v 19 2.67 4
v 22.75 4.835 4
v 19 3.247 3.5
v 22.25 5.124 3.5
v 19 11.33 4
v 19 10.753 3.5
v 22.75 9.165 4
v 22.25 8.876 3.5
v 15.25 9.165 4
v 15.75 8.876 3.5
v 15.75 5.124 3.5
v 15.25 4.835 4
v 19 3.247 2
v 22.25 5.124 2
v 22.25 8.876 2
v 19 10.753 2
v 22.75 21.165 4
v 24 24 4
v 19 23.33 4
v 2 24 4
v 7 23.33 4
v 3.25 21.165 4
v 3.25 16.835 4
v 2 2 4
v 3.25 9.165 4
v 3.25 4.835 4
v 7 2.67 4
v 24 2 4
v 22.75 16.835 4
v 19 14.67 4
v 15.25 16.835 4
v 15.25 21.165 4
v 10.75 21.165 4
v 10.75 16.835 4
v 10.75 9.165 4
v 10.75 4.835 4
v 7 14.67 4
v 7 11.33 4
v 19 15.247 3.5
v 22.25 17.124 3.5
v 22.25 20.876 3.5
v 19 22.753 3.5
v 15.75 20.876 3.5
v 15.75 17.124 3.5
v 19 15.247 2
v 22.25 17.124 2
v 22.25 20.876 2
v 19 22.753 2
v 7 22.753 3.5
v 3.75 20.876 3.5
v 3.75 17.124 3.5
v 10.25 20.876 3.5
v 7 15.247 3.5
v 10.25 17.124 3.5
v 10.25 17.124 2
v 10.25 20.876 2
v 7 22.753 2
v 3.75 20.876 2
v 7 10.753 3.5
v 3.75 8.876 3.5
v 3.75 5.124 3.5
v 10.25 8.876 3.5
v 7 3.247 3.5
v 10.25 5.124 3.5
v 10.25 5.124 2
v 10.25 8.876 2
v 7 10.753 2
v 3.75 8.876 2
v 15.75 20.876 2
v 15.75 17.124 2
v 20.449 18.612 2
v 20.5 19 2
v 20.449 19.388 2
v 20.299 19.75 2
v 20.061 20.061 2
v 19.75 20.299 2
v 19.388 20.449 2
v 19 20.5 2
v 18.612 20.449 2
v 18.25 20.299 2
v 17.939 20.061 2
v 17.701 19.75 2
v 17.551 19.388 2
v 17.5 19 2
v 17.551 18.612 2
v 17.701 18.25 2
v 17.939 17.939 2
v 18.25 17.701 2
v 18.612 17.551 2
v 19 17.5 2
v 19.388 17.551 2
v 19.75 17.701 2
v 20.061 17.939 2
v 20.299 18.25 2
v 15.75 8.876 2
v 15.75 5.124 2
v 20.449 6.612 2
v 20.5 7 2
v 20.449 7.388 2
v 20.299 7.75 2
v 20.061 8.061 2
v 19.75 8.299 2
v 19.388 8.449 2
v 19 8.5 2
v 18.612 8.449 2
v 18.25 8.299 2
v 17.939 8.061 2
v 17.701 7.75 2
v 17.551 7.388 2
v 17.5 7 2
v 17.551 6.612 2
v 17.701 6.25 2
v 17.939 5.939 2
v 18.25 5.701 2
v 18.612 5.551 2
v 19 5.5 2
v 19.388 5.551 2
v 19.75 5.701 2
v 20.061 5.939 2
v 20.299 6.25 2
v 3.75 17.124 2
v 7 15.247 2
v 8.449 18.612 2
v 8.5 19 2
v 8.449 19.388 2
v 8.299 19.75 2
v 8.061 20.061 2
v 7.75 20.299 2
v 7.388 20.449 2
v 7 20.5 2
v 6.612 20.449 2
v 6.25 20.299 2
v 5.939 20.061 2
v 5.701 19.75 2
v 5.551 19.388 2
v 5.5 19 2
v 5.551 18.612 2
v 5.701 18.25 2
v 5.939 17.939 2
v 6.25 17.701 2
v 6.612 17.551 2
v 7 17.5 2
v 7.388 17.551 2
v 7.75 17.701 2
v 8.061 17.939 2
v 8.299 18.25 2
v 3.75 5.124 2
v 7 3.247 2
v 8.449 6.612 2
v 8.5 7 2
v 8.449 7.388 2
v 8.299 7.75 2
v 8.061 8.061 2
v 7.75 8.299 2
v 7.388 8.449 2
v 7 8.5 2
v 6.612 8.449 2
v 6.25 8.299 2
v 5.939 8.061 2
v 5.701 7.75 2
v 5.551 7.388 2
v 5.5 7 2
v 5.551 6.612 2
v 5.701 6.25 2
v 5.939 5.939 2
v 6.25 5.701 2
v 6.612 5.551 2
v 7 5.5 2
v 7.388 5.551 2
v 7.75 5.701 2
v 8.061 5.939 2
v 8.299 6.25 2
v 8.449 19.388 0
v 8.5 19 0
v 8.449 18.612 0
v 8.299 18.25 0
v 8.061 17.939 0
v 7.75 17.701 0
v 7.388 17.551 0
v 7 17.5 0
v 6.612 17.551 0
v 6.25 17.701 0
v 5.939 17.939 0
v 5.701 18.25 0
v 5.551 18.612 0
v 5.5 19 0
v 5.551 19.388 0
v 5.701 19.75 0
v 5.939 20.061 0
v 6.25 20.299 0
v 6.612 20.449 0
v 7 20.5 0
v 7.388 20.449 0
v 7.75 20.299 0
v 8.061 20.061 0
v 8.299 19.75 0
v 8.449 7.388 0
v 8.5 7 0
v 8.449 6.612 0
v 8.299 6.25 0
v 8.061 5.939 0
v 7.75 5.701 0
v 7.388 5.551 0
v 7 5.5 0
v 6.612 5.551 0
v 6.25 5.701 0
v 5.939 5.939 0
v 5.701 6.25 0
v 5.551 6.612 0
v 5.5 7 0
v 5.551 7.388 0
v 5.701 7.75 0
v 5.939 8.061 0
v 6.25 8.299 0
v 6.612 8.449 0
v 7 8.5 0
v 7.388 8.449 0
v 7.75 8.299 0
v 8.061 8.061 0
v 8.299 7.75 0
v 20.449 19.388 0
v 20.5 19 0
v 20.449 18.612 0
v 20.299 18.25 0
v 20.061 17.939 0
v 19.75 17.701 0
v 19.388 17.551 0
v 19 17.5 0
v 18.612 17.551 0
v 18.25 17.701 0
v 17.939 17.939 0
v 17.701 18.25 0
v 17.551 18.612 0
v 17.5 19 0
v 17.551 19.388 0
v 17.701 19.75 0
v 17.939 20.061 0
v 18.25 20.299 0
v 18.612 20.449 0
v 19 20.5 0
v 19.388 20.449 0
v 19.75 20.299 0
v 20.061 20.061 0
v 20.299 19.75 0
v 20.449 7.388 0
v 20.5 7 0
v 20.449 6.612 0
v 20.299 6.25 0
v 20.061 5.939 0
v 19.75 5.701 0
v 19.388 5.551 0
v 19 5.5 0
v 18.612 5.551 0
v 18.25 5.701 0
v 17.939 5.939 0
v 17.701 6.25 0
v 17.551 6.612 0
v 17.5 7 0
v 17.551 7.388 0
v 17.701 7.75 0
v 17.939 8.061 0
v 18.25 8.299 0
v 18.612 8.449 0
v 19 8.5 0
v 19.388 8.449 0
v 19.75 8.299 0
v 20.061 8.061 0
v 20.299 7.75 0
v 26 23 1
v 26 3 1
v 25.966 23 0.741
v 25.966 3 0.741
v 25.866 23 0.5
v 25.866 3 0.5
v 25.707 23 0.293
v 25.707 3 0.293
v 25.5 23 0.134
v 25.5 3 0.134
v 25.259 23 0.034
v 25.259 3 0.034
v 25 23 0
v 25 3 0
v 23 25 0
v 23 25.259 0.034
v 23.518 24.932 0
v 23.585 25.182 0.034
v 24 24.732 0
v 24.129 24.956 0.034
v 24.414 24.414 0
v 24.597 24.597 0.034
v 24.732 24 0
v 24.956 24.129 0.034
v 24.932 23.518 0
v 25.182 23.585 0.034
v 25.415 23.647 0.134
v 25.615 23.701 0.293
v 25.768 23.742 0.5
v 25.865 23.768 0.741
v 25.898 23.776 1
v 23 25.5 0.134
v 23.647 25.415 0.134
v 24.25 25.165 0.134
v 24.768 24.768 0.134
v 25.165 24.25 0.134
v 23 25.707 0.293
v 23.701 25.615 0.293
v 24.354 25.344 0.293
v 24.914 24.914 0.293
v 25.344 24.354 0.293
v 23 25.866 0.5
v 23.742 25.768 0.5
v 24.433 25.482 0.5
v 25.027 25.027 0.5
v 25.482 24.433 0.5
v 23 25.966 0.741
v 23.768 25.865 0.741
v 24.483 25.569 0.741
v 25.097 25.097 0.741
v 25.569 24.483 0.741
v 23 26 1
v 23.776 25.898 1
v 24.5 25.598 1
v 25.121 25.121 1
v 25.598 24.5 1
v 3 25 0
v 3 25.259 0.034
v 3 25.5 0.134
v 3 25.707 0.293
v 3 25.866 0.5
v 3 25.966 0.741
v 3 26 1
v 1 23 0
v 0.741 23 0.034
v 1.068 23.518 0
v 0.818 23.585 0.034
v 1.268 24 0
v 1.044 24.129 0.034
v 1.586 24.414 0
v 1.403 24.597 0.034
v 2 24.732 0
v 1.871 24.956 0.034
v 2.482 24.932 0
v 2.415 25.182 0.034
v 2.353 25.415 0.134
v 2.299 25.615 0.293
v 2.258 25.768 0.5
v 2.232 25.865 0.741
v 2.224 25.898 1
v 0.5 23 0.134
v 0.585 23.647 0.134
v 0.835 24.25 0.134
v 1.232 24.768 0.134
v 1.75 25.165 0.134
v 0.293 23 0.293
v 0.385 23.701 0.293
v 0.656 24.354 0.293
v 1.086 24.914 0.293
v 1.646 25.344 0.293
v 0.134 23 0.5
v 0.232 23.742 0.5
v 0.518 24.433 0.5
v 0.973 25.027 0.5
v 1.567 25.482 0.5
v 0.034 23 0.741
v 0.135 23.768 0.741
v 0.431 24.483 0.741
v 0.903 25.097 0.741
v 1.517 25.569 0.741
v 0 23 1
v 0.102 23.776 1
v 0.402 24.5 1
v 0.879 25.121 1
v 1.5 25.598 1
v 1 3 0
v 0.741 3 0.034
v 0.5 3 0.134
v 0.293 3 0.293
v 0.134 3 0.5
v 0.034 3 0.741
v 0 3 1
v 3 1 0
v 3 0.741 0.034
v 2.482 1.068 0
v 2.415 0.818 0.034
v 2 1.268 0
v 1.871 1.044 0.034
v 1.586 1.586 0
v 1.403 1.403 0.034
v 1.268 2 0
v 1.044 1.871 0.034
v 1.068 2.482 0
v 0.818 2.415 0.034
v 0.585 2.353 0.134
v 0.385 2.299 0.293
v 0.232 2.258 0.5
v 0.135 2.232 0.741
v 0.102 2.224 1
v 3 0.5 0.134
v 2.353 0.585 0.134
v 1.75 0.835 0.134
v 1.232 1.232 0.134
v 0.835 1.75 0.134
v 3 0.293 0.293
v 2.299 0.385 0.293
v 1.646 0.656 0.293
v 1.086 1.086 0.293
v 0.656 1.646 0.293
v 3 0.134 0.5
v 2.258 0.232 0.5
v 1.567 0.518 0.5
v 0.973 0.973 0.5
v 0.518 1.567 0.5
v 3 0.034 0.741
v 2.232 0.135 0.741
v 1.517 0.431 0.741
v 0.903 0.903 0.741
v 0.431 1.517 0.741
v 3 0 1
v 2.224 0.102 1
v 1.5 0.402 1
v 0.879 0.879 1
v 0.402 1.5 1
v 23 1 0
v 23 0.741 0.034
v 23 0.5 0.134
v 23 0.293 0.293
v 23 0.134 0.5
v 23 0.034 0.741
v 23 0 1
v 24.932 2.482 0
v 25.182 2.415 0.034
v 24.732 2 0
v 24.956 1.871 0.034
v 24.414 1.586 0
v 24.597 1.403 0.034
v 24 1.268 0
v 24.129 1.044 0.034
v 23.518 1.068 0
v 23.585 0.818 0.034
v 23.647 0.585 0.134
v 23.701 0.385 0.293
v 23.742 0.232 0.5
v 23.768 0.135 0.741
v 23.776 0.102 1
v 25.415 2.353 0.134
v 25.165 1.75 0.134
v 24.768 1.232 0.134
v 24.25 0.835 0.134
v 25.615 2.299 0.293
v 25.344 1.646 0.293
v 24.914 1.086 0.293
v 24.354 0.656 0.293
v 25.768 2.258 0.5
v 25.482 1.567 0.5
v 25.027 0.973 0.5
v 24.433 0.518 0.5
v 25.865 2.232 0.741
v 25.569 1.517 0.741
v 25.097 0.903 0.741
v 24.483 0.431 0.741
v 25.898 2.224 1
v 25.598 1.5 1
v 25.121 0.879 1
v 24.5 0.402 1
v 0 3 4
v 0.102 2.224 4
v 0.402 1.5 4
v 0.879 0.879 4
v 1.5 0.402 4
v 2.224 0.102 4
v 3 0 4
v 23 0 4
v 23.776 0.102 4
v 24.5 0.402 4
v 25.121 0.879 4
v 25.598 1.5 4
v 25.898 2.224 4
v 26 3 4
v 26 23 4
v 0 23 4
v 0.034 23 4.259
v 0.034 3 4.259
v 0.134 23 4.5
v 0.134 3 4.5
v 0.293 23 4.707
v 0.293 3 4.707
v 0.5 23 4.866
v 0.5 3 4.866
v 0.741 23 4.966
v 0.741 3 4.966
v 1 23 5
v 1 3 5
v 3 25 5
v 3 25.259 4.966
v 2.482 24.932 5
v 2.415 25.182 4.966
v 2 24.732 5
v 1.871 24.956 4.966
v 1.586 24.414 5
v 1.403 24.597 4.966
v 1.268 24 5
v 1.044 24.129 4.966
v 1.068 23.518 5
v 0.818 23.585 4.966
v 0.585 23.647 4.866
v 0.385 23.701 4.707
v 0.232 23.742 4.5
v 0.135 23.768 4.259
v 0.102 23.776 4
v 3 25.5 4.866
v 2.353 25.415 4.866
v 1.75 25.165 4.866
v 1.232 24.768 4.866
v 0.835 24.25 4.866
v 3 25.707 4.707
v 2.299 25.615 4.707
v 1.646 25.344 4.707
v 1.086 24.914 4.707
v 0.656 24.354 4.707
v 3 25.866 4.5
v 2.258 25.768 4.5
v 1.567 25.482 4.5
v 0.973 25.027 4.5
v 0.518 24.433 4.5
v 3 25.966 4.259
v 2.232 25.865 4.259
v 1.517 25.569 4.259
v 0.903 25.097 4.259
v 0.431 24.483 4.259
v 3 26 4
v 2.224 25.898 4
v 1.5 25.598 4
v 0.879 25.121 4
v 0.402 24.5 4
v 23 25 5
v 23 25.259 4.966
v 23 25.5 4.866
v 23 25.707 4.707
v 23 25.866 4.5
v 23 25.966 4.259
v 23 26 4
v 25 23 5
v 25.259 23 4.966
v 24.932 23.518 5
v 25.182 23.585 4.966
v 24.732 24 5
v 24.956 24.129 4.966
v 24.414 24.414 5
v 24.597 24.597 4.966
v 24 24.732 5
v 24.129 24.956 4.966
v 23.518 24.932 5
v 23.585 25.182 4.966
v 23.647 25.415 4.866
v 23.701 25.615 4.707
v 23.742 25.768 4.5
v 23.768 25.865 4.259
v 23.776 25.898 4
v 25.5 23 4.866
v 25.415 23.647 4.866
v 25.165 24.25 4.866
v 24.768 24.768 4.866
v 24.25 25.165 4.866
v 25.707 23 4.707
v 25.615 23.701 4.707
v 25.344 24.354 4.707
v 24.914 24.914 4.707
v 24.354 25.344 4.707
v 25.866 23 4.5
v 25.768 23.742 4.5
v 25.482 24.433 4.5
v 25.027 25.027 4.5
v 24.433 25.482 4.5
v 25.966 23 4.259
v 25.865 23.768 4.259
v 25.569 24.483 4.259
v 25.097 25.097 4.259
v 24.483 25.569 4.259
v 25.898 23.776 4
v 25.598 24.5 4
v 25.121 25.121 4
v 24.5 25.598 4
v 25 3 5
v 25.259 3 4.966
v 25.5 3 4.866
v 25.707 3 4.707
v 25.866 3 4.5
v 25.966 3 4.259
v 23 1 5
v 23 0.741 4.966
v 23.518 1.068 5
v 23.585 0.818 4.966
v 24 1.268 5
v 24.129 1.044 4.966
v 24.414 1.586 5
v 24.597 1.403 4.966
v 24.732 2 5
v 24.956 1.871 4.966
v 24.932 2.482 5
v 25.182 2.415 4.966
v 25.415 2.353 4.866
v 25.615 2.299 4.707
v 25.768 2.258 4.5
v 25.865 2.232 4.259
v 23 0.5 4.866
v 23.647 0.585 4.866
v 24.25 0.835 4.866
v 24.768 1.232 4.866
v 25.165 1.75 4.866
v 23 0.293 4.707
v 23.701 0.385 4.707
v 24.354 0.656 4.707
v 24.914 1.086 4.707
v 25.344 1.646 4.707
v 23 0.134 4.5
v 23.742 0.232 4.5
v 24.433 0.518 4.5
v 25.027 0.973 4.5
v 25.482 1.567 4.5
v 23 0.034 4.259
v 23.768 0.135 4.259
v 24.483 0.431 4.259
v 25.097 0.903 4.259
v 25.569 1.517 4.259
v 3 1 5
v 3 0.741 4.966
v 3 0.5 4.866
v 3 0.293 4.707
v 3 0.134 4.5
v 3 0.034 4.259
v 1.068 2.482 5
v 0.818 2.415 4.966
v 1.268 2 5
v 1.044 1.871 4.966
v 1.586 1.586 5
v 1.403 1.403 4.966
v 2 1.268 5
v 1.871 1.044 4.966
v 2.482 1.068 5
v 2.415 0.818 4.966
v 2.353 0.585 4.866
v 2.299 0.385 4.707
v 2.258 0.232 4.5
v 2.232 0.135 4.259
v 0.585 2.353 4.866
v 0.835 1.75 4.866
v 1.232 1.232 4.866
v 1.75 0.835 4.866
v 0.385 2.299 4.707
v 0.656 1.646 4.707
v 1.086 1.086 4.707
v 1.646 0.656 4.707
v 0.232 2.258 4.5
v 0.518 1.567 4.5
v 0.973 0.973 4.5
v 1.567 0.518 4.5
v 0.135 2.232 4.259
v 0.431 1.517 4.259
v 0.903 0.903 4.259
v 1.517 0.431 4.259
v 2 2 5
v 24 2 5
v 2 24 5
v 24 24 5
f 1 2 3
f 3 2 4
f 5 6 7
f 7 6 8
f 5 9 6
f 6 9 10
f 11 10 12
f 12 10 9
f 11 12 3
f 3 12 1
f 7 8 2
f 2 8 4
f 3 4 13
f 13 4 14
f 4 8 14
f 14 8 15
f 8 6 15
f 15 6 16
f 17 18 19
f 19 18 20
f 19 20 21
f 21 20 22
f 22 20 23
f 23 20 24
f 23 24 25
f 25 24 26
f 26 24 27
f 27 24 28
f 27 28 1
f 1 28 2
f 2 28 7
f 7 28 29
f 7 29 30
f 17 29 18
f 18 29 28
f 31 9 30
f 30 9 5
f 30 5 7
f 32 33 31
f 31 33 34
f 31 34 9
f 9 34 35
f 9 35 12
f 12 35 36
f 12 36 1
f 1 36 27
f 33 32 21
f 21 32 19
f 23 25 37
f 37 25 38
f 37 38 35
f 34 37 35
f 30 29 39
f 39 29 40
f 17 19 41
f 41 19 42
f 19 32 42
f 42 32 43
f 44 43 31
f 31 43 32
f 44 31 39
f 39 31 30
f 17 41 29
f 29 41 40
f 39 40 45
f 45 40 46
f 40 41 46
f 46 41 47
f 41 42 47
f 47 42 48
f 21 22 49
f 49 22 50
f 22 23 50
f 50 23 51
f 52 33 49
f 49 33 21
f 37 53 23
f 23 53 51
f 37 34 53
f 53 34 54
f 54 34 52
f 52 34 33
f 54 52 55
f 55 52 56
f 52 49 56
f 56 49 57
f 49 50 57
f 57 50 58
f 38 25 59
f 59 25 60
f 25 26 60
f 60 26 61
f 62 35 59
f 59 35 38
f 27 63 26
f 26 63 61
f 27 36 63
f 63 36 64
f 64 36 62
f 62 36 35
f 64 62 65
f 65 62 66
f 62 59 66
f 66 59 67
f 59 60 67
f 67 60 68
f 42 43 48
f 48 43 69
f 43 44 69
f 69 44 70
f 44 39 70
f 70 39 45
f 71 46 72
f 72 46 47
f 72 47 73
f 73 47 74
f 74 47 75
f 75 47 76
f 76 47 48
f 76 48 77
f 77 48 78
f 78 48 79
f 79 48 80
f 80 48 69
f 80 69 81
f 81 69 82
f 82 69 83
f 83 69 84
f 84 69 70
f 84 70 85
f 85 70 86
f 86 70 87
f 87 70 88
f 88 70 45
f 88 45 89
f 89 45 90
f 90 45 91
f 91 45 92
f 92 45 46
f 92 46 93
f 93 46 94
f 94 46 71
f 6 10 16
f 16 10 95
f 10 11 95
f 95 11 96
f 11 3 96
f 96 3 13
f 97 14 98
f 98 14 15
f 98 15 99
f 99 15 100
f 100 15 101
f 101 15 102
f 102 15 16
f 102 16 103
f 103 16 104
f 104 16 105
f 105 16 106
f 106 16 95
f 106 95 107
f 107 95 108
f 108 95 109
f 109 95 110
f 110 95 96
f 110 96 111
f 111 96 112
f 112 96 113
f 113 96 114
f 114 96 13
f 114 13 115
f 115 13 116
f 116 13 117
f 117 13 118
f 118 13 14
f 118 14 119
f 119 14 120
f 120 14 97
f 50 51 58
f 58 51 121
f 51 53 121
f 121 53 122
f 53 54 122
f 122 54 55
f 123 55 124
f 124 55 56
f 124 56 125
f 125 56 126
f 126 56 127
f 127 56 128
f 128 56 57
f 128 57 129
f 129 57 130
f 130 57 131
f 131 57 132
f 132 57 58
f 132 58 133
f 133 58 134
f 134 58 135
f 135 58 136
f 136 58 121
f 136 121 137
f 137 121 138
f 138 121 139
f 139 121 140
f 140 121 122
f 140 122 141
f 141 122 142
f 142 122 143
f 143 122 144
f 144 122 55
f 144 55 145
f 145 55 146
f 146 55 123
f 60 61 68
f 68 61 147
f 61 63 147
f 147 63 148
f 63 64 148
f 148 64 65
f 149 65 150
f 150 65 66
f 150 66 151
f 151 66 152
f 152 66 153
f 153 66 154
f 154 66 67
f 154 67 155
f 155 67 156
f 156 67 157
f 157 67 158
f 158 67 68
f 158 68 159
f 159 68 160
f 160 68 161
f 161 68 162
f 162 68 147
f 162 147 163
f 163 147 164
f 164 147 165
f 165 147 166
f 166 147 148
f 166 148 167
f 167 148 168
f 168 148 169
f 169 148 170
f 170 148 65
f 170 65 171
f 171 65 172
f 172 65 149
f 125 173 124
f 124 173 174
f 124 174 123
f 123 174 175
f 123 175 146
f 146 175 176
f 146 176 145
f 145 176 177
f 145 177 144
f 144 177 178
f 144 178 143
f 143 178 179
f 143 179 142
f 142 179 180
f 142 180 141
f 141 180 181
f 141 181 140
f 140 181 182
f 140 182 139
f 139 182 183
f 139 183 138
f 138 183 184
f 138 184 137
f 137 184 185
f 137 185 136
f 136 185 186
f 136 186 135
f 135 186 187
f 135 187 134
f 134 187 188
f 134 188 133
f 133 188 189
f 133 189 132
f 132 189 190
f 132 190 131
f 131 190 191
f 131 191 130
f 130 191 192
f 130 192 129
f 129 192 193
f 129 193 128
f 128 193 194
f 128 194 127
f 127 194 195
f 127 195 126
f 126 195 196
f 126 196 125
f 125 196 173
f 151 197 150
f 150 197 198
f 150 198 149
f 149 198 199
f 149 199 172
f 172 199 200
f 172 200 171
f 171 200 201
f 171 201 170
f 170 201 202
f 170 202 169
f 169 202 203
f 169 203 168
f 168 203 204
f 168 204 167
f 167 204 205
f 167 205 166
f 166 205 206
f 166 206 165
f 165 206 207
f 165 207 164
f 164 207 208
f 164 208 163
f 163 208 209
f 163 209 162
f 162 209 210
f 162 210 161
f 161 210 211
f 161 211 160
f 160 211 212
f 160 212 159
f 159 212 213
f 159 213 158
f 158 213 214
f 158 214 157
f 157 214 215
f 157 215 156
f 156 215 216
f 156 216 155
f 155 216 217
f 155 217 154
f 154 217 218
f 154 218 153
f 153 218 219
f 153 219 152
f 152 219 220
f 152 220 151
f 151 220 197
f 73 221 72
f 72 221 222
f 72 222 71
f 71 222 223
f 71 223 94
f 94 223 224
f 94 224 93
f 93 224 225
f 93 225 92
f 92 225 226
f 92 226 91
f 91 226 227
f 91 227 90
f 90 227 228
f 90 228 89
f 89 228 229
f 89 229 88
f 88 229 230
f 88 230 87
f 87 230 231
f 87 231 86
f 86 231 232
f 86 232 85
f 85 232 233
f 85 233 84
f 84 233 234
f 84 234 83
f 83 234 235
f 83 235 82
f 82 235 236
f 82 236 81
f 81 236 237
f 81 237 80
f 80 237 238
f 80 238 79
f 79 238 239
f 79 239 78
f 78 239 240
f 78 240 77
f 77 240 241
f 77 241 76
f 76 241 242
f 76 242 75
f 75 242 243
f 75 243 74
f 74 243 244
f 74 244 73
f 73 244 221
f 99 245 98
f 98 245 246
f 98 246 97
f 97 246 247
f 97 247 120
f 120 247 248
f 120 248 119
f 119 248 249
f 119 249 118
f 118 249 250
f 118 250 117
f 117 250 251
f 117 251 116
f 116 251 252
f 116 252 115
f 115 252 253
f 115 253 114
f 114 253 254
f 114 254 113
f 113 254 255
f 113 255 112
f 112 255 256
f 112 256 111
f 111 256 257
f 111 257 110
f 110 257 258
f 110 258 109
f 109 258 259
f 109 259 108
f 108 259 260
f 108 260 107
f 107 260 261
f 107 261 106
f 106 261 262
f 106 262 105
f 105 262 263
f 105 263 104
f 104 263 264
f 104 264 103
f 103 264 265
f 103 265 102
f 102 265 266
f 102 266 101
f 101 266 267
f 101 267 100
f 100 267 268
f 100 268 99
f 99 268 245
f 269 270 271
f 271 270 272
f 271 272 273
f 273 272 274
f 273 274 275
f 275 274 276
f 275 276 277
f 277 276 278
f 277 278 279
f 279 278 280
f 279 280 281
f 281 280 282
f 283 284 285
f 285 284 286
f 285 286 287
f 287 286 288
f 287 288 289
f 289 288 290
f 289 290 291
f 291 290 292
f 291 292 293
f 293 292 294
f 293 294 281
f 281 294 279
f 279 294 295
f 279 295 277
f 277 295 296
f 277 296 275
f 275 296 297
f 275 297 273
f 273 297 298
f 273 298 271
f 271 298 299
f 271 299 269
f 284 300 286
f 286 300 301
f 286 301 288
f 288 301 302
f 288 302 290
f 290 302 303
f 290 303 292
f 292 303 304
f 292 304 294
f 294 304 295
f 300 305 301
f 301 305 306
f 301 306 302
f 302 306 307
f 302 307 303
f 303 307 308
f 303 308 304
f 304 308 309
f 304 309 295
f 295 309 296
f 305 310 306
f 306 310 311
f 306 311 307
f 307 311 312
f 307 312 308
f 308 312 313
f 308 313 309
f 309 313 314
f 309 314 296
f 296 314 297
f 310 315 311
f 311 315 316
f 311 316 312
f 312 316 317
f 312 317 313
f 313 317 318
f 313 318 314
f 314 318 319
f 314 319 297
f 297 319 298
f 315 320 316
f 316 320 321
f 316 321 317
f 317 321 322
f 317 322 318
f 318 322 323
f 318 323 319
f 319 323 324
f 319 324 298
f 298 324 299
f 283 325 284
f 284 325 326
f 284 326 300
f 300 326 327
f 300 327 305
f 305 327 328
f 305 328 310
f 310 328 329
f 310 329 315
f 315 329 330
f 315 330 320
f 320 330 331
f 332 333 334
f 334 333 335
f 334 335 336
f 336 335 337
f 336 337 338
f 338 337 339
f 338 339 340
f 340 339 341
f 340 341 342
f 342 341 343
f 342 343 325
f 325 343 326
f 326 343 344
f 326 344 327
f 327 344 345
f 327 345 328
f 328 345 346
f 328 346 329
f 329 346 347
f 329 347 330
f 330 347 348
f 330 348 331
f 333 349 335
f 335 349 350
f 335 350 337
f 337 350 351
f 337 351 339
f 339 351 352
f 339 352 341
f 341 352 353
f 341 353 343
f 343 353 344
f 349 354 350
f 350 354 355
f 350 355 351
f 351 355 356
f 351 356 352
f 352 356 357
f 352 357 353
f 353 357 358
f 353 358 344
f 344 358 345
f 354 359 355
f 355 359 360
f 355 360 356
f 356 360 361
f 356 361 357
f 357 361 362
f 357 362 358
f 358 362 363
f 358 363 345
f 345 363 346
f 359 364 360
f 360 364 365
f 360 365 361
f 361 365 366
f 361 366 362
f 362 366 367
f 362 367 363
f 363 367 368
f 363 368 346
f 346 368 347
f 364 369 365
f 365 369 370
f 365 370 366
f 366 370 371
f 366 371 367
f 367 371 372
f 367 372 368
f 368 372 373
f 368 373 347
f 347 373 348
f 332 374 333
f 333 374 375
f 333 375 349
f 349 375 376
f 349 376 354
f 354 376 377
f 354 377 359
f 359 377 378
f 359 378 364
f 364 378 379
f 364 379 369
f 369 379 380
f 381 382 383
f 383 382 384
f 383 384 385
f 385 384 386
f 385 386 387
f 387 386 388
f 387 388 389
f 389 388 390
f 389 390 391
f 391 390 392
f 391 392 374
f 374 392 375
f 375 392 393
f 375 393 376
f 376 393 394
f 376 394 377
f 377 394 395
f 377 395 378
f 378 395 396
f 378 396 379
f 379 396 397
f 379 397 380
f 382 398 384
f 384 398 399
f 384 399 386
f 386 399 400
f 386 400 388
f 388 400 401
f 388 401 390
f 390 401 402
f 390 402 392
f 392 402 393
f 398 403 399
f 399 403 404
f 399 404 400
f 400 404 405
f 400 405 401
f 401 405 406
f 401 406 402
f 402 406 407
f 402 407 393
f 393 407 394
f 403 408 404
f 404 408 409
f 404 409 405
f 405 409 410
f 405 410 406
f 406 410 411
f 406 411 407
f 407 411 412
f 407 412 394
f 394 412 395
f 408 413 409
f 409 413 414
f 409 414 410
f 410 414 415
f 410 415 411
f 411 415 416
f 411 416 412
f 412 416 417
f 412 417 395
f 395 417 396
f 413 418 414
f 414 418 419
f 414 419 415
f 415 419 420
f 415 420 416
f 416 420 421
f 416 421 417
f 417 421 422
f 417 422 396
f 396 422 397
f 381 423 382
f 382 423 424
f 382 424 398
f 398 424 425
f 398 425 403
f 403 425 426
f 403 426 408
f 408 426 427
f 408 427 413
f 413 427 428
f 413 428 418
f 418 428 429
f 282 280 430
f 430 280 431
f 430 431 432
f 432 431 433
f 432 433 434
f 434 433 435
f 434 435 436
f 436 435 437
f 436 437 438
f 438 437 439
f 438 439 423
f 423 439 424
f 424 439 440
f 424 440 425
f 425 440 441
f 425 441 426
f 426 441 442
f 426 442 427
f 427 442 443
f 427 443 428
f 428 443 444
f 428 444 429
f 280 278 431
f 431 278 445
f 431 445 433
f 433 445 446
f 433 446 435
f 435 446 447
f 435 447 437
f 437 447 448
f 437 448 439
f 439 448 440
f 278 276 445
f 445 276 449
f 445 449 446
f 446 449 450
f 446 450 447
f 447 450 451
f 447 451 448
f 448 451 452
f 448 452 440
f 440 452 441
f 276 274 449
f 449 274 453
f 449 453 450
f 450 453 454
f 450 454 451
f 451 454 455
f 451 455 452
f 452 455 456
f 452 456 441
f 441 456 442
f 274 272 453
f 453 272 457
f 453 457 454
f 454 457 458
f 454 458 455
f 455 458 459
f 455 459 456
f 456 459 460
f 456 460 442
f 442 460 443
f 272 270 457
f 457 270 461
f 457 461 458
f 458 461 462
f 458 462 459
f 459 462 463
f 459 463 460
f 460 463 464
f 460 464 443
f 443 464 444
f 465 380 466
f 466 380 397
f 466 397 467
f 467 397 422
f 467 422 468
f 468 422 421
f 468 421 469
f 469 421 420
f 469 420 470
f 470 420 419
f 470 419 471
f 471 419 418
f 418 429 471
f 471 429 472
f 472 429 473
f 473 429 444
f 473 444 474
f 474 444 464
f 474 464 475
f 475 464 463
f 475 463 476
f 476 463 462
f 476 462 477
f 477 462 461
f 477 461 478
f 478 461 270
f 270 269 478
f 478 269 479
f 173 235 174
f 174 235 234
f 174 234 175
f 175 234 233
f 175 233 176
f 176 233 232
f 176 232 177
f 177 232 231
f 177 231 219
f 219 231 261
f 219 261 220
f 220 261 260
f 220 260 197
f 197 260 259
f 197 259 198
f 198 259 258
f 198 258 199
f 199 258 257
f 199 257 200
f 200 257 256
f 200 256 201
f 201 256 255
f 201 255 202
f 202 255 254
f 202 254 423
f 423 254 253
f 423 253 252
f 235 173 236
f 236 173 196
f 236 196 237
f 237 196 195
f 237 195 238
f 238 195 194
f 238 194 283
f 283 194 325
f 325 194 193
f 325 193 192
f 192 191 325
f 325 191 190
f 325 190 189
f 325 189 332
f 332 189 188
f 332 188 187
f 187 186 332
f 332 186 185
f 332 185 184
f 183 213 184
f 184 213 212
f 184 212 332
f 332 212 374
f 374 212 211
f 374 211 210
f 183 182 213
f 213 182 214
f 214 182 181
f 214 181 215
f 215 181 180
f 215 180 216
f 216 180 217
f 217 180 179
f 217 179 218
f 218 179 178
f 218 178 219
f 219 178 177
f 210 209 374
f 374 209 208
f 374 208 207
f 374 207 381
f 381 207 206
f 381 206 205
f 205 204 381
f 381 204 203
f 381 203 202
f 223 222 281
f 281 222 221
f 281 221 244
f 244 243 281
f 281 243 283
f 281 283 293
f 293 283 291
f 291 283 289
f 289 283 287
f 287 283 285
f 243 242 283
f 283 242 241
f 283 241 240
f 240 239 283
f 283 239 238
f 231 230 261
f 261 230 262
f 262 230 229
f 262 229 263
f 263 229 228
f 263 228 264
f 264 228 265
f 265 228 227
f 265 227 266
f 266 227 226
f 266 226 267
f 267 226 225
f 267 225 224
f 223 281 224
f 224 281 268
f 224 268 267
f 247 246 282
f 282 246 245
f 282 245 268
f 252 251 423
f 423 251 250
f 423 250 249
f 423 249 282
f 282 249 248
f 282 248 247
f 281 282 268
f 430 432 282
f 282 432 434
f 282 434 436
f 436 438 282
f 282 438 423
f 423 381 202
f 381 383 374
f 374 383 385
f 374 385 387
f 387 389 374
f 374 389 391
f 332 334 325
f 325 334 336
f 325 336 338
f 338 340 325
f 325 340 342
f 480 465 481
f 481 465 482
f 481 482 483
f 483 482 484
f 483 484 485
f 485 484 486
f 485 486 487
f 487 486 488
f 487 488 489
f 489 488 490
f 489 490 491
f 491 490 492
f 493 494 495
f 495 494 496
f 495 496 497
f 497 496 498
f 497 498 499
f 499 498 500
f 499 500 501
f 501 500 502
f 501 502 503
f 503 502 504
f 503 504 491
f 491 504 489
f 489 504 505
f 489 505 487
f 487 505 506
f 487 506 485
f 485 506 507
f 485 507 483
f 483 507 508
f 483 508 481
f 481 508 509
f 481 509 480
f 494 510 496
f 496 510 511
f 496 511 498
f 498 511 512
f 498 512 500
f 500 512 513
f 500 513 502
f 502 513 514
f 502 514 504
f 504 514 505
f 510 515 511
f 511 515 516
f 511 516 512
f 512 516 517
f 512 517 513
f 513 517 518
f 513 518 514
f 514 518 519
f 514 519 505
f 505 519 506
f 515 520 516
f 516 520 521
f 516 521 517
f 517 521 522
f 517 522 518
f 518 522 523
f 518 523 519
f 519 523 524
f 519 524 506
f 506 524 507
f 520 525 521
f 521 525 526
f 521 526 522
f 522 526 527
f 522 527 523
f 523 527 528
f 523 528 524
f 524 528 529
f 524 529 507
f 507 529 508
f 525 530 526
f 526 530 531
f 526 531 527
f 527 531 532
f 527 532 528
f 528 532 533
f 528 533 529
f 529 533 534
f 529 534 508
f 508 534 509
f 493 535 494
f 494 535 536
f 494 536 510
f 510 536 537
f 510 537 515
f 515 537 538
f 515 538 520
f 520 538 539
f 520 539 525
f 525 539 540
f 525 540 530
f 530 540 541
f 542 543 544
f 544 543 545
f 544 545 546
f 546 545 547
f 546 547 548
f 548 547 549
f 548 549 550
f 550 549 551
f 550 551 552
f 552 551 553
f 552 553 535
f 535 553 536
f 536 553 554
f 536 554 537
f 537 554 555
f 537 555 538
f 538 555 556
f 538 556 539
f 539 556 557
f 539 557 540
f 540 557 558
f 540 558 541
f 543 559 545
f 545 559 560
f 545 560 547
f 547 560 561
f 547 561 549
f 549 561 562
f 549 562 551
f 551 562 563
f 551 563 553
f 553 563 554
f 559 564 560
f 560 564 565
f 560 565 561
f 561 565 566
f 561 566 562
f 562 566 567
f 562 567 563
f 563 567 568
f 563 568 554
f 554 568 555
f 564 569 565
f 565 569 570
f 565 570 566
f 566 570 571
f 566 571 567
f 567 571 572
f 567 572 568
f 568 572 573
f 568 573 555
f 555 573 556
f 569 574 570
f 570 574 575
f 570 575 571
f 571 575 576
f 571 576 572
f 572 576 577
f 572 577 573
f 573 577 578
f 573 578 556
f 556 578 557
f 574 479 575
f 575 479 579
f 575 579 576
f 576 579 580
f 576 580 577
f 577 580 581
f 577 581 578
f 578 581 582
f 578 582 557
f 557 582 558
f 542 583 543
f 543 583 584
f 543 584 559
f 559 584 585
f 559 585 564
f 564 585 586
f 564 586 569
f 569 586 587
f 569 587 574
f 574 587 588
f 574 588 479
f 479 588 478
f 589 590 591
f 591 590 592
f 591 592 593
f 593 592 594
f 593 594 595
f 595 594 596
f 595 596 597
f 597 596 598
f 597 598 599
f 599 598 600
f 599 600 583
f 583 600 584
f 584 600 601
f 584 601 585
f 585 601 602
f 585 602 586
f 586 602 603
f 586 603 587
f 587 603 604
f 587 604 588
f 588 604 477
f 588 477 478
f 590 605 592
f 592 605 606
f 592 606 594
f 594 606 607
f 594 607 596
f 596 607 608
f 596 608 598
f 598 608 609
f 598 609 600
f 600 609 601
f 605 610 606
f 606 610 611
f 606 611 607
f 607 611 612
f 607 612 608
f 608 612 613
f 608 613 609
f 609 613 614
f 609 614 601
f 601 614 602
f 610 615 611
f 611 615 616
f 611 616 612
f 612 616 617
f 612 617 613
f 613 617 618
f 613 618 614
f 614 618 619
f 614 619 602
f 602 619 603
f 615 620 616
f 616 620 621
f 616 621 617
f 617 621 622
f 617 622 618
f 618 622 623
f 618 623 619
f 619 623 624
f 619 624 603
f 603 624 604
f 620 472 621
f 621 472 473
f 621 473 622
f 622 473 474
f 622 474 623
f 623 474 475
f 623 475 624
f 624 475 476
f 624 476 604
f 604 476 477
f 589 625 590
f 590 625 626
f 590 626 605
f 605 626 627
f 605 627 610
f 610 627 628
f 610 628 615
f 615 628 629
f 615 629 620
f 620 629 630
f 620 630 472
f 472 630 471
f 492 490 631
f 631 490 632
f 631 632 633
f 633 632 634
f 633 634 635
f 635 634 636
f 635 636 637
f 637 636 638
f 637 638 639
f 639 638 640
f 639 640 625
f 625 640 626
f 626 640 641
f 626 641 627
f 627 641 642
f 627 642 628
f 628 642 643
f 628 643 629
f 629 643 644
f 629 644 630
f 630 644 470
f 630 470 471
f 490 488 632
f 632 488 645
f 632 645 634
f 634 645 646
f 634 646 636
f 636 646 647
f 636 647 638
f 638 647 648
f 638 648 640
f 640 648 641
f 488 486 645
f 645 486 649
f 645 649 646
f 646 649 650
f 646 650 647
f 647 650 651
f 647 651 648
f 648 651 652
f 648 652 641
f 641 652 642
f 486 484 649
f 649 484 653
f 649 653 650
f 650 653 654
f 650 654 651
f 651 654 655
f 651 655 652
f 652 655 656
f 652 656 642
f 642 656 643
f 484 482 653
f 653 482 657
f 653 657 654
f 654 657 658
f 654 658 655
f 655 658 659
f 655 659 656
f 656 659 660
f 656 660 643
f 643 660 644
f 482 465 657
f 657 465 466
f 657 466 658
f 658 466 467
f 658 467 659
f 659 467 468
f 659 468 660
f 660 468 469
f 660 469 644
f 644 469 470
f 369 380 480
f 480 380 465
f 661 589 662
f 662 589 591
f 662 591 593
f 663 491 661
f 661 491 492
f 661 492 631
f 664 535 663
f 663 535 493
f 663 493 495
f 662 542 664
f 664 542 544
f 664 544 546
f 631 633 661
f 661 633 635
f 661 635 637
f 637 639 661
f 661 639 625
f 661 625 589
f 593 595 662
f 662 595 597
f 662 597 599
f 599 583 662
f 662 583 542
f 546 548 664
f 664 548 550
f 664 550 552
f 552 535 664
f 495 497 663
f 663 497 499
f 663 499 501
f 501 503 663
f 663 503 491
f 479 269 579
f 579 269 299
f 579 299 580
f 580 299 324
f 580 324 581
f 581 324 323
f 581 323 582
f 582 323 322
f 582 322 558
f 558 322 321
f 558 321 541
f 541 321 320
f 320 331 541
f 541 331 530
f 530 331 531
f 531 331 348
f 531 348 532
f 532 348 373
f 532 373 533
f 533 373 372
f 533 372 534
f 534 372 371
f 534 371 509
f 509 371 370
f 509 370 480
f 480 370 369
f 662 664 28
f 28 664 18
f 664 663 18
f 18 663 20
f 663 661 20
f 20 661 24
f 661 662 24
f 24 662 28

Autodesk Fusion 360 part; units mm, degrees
sketch "Sketch1" plane through (0, 0, 0) normal (0, 0, 1) x (1, 0, 0)
  line L0 (0, 0) -> (26, 0)
  line L1 (26, 0) -> (26, 26)
  line L2 (26, 26) -> (0, 26)
  line L3 (0, 26) -> (0, 0)
  dimension "d1" = 26
  dimension "d2" = 26
extrude "Extrude1" add sketch "Sketch1" along normal blind 2
sketch "Sketch2" plane through (0, 0, 2) normal (0, 0, 1) x (-1, 0, 0)
  line L0 (0, -26) -> (0, 0)
  line L1 (0, 0) -> (-26, 0)
  line L2 (-26, 0) -> (-26, -26)
  line L3 (-26, -26) -> (0, -26)
  line L4 (-2, -24) -> (-24, -24)
  line L5 (-24, -24) -> (-24, -2)
  line L6 (-24, -2) -> (-2, -2)
  line L7 (-2, -2) -> (-2, -24)
extrude "Extrude2" add sketch "Sketch2" along normal blind 1.5
extrude "Extrude3" add 1 faces at (0.6667, 9.3333, 3.5) along direction (0, 0, 1) blind 2
extrude "Extrude4" add 1 faces at (9.3333, 16.6667, 2) along direction (0, 0, 1) blind 2
extrude "Extrude5" cut 1 faces at (0.6667, 9.3333, 5.5) along direction (0, 0, -1) blind 0.5
fillet "Fillet1" radius 3 4 edges at (0, 26, 2.5) (26, 26, 2.5) (0, 0, 2.5) (26, 0, 2.5)
fillet "Fillet2" radius 1 16 edges at (0, 13, 5) (0.8787, 25.1213, 5) (13, 26, 5) (25.1213, 25.1213, 5) (26, 13, 5) (25.1213, 0.8787, 5) (13, 0, 5) (0.8787, 0.8787, 5) (26, 13, 0) (25.1213, 25.1213, 0) (13, 26, 0) (0.8787, 25.1213, 0) (0, 13, 0) (0.8787, 0.8787, 0) (13, 0, 0) (25.1213, 0.8787, 0)
sketch "Sketch3" plane through (0, 0, 4) normal (0, 0, 1) x (-1, 0, 0)
  line L0 (-24, -2) -> (-24, -24)
  line L1 (-24, -24) -> (-2, -24)
  line L2 (-2, -24) -> (-2, -2)
  line L3 (-2, -2) -> (-24, -2)
  circle A0 centre (-7, -19) radius 1.5
  circle A1 centre (-19, -19) radius 1.5
  circle A2 centre (-19, -7) radius 1.5
  circle A3 centre (-7, -7) radius 1.5
  dimension "d16" = 3
  dimension "d17" = 3
  dimension "d18" = 3
  dimension "d19" = 3
extrude "Extrude6" cut sketch "Sketch3" against normal blind 4 contours A0 | A1 | A2 | A3
sketch "Sketch4" plane through (0, 0, 4) normal (0, 0, 1) x (-1, 0, 0)
  circle A0 centre (-7, -19) radius 1.5
  circle A1 centre (-7, -7) radius 1.5
  circle A2 centre (-19, -19) radius 1.5
  circle A3 centre (-19, -7) radius 1.5
  line L0 (-24, -2) -> (-24, -24)
  line L1 (-24, -24) -> (-2, -24)
  line L2 (-2, -24) -> (-2, -2)
  line L3 (-2, -2) -> (-24, -2)
  line L4 (-10.25, -20.8764) -> (-7, -22.7528)
  line L5 (-7, -22.7528) -> (-3.75, -20.8764)
  line L6 (-3.75, -20.8764) -> (-3.75, -17.1236)
  line L7 (-3.75, -17.1236) -> (-7, -15.2472)
  line L8 (-7, -15.2472) -> (-10.25, -17.1236)
  line L9 (-10.25, -17.1236) -> (-10.25, -20.8764)
  line L10 (-22.25, -20.8764) -> (-19, -22.7528)
  line L11 (-19, -22.7528) -> (-15.75, -20.8764)
  line L12 (-15.75, -20.8764) -> (-15.75, -17.1236)
  line L13 (-15.75, -17.1236) -> (-19, -15.2472)
  line L14 (-19, -15.2472) -> (-22.25, -17.1236)
  line L15 (-22.25, -17.1236) -> (-22.25, -20.8764)
  line L16 (-10.25, -8.8764) -> (-7, -10.7528)
  line L17 (-7, -10.7528) -> (-3.75, -8.8764)
  line L18 (-3.75, -8.8764) -> (-3.75, -5.1236)
  line L19 (-3.75, -5.1236) -> (-7, -3.2472)
  line L20 (-7, -3.2472) -> (-10.25, -5.1236)
  line L21 (-10.25, -5.1236) -> (-10.25, -8.8764)
  line L22 (-22.25, -8.8764) -> (-19, -10.7528)
  line L23 (-19, -10.7528) -> (-15.75, -8.8764)
  line L24 (-15.75, -8.8764) -> (-15.75, -5.1236)
  line L25 (-15.75, -5.1236) -> (-19, -3.2472)
  line L26 (-19, -3.2472) -> (-22.25, -5.1236)
  line L27 (-22.25, -5.1236) -> (-22.25, -8.8764)
  point P0 (-7, -19)
  point P1 (-19, -19)
  point P2 (-7, -7)
  point P3 (-19, -7)
  dimension "d22" = 3.25
  dimension "d23" = 3.25
  dimension "d24" = 3.25
  dimension "d25" = 3.25
extrude "Extrude7" cut sketch "Sketch4" against normal blind 2 contours L4 L5 L6 L7 L8 L9 | L10 L11 L12 L13 L14 L15 | L16 L17 L18 L19 L20 L21 | L22 L23 L24 L25 L26 L27
chamfer "Chamfer1" distance 0.5 angle 45 24 edges at (8.625, 4.1854, 4) (5.375, 4.1854, 4) (3.75, 7, 4) (5.375, 9.8146, 4) (8.625, 9.8146, 4) (10.25, 7, 4) (8.625, 16.1854, 4) (5.375, 16.1854, 4) (3.75, 19, 4) (5.375, 21.8146, 4) (8.625, 21.8146, 4) (10.25, 19, 4) (17.375, 21.8146, 4) (15.75, 19, 4) (17.375, 16.1854, 4) (20.625, 16.1854, 4) (22.25, 19, 4) (20.625, 21.8146, 4) (17.375, 9.8146, 4) (15.75, 7, 4) (17.375, 4.1854, 4) (20.625, 4.1854, 4) (22.25, 7, 4) (20.625, 9.8146, 4)
